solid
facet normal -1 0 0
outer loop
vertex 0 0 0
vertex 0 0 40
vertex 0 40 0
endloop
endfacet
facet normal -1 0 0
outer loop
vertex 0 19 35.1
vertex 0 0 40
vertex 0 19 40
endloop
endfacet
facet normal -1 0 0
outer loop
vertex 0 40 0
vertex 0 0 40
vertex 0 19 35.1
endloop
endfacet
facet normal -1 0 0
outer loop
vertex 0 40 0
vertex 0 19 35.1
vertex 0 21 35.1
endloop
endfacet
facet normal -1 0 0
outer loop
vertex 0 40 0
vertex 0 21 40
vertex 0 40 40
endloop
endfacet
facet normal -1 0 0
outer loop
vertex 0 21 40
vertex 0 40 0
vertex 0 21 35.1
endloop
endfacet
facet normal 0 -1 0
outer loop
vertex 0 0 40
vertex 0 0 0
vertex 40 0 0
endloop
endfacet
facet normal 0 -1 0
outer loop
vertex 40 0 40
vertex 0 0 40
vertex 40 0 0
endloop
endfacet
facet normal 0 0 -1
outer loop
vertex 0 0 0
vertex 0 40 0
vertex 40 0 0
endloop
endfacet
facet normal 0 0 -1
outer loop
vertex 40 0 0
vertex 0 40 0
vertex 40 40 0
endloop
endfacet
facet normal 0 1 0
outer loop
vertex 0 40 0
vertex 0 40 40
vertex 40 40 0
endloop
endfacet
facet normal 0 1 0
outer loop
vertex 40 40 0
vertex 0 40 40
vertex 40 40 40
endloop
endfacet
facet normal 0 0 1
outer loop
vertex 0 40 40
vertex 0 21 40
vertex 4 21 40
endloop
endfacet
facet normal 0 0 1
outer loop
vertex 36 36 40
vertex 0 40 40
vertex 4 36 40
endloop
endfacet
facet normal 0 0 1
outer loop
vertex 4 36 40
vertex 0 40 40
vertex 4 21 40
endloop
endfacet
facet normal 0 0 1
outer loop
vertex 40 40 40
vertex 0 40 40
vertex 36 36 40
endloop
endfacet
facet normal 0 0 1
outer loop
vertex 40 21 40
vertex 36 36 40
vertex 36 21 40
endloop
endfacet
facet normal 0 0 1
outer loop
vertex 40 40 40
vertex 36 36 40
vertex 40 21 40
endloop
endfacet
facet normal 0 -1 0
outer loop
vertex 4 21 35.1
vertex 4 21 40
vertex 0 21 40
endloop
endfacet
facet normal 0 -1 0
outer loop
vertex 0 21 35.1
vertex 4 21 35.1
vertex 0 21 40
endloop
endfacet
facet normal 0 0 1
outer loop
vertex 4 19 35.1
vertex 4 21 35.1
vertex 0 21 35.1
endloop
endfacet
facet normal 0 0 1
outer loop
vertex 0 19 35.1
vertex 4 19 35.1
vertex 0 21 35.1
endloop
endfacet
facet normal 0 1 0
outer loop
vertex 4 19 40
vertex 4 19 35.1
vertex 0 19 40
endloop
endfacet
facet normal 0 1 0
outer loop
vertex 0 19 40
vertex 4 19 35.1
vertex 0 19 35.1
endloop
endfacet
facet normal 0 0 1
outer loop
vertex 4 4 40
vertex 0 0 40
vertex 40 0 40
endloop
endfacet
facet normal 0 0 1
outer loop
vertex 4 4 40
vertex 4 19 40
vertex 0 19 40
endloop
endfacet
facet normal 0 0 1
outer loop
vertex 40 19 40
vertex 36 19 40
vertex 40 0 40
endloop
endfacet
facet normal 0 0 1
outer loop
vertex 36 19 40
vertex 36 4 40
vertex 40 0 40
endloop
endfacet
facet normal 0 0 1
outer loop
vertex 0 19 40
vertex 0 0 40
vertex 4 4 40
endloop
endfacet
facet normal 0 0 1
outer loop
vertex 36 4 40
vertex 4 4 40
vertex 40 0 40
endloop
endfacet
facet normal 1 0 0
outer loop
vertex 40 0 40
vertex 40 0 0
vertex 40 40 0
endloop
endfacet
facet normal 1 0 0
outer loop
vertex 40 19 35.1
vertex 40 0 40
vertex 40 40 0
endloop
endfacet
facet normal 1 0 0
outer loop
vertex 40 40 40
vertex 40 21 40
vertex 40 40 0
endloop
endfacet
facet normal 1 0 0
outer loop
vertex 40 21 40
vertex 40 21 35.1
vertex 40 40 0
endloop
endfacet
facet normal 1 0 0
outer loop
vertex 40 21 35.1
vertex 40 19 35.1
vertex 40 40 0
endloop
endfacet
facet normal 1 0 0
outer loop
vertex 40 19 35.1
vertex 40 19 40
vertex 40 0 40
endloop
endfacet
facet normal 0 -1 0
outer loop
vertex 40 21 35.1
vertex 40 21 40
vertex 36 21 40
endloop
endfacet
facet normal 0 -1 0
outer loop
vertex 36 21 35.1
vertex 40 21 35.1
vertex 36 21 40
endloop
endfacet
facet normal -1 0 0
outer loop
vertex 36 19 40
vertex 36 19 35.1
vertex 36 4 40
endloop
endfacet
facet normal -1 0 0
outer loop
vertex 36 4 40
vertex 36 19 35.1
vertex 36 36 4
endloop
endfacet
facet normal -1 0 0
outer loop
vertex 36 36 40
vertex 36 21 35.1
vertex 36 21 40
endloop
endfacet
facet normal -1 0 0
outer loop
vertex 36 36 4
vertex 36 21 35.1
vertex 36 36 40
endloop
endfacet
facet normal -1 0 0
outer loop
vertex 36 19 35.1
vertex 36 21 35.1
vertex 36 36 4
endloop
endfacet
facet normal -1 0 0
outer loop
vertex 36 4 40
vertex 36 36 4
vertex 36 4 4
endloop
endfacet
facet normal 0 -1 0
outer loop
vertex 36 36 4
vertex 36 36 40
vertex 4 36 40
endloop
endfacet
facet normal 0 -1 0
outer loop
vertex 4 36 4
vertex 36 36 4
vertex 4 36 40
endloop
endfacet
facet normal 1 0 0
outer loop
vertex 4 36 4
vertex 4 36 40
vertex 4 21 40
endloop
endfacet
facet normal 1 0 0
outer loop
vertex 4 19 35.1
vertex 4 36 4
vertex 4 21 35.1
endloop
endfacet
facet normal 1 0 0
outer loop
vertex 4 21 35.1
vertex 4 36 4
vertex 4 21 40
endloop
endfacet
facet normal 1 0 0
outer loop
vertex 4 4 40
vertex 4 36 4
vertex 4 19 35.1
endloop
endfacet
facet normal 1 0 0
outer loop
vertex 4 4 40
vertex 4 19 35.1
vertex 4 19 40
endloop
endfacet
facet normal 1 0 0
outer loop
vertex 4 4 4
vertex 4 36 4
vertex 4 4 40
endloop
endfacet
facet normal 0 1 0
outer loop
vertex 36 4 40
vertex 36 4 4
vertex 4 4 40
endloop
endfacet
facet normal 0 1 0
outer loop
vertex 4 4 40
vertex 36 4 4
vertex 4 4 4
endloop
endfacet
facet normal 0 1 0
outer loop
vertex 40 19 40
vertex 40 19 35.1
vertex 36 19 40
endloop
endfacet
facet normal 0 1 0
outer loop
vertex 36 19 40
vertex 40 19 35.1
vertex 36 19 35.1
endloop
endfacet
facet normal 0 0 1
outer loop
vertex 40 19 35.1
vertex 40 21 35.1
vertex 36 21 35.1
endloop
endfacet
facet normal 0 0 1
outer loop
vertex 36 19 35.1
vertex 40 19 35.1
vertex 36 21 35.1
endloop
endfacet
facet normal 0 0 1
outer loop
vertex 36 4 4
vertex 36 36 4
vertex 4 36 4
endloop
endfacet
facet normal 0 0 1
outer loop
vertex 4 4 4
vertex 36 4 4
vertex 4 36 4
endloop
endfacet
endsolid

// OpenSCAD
pared = 4;
pared2 = pared*2;
W = 40;
slideX = W+2;
slideY = 2;
slideZ = 5;


difference()
{
cube([W,W,W]);
translate([pared,pared,pared])
cube([W-pared2,W-pared2,W]);

translate([-1,(W/2)-(slideY/2),W-slideZ+0.1])
cube([slideX,slideY,slideZ]);

}
